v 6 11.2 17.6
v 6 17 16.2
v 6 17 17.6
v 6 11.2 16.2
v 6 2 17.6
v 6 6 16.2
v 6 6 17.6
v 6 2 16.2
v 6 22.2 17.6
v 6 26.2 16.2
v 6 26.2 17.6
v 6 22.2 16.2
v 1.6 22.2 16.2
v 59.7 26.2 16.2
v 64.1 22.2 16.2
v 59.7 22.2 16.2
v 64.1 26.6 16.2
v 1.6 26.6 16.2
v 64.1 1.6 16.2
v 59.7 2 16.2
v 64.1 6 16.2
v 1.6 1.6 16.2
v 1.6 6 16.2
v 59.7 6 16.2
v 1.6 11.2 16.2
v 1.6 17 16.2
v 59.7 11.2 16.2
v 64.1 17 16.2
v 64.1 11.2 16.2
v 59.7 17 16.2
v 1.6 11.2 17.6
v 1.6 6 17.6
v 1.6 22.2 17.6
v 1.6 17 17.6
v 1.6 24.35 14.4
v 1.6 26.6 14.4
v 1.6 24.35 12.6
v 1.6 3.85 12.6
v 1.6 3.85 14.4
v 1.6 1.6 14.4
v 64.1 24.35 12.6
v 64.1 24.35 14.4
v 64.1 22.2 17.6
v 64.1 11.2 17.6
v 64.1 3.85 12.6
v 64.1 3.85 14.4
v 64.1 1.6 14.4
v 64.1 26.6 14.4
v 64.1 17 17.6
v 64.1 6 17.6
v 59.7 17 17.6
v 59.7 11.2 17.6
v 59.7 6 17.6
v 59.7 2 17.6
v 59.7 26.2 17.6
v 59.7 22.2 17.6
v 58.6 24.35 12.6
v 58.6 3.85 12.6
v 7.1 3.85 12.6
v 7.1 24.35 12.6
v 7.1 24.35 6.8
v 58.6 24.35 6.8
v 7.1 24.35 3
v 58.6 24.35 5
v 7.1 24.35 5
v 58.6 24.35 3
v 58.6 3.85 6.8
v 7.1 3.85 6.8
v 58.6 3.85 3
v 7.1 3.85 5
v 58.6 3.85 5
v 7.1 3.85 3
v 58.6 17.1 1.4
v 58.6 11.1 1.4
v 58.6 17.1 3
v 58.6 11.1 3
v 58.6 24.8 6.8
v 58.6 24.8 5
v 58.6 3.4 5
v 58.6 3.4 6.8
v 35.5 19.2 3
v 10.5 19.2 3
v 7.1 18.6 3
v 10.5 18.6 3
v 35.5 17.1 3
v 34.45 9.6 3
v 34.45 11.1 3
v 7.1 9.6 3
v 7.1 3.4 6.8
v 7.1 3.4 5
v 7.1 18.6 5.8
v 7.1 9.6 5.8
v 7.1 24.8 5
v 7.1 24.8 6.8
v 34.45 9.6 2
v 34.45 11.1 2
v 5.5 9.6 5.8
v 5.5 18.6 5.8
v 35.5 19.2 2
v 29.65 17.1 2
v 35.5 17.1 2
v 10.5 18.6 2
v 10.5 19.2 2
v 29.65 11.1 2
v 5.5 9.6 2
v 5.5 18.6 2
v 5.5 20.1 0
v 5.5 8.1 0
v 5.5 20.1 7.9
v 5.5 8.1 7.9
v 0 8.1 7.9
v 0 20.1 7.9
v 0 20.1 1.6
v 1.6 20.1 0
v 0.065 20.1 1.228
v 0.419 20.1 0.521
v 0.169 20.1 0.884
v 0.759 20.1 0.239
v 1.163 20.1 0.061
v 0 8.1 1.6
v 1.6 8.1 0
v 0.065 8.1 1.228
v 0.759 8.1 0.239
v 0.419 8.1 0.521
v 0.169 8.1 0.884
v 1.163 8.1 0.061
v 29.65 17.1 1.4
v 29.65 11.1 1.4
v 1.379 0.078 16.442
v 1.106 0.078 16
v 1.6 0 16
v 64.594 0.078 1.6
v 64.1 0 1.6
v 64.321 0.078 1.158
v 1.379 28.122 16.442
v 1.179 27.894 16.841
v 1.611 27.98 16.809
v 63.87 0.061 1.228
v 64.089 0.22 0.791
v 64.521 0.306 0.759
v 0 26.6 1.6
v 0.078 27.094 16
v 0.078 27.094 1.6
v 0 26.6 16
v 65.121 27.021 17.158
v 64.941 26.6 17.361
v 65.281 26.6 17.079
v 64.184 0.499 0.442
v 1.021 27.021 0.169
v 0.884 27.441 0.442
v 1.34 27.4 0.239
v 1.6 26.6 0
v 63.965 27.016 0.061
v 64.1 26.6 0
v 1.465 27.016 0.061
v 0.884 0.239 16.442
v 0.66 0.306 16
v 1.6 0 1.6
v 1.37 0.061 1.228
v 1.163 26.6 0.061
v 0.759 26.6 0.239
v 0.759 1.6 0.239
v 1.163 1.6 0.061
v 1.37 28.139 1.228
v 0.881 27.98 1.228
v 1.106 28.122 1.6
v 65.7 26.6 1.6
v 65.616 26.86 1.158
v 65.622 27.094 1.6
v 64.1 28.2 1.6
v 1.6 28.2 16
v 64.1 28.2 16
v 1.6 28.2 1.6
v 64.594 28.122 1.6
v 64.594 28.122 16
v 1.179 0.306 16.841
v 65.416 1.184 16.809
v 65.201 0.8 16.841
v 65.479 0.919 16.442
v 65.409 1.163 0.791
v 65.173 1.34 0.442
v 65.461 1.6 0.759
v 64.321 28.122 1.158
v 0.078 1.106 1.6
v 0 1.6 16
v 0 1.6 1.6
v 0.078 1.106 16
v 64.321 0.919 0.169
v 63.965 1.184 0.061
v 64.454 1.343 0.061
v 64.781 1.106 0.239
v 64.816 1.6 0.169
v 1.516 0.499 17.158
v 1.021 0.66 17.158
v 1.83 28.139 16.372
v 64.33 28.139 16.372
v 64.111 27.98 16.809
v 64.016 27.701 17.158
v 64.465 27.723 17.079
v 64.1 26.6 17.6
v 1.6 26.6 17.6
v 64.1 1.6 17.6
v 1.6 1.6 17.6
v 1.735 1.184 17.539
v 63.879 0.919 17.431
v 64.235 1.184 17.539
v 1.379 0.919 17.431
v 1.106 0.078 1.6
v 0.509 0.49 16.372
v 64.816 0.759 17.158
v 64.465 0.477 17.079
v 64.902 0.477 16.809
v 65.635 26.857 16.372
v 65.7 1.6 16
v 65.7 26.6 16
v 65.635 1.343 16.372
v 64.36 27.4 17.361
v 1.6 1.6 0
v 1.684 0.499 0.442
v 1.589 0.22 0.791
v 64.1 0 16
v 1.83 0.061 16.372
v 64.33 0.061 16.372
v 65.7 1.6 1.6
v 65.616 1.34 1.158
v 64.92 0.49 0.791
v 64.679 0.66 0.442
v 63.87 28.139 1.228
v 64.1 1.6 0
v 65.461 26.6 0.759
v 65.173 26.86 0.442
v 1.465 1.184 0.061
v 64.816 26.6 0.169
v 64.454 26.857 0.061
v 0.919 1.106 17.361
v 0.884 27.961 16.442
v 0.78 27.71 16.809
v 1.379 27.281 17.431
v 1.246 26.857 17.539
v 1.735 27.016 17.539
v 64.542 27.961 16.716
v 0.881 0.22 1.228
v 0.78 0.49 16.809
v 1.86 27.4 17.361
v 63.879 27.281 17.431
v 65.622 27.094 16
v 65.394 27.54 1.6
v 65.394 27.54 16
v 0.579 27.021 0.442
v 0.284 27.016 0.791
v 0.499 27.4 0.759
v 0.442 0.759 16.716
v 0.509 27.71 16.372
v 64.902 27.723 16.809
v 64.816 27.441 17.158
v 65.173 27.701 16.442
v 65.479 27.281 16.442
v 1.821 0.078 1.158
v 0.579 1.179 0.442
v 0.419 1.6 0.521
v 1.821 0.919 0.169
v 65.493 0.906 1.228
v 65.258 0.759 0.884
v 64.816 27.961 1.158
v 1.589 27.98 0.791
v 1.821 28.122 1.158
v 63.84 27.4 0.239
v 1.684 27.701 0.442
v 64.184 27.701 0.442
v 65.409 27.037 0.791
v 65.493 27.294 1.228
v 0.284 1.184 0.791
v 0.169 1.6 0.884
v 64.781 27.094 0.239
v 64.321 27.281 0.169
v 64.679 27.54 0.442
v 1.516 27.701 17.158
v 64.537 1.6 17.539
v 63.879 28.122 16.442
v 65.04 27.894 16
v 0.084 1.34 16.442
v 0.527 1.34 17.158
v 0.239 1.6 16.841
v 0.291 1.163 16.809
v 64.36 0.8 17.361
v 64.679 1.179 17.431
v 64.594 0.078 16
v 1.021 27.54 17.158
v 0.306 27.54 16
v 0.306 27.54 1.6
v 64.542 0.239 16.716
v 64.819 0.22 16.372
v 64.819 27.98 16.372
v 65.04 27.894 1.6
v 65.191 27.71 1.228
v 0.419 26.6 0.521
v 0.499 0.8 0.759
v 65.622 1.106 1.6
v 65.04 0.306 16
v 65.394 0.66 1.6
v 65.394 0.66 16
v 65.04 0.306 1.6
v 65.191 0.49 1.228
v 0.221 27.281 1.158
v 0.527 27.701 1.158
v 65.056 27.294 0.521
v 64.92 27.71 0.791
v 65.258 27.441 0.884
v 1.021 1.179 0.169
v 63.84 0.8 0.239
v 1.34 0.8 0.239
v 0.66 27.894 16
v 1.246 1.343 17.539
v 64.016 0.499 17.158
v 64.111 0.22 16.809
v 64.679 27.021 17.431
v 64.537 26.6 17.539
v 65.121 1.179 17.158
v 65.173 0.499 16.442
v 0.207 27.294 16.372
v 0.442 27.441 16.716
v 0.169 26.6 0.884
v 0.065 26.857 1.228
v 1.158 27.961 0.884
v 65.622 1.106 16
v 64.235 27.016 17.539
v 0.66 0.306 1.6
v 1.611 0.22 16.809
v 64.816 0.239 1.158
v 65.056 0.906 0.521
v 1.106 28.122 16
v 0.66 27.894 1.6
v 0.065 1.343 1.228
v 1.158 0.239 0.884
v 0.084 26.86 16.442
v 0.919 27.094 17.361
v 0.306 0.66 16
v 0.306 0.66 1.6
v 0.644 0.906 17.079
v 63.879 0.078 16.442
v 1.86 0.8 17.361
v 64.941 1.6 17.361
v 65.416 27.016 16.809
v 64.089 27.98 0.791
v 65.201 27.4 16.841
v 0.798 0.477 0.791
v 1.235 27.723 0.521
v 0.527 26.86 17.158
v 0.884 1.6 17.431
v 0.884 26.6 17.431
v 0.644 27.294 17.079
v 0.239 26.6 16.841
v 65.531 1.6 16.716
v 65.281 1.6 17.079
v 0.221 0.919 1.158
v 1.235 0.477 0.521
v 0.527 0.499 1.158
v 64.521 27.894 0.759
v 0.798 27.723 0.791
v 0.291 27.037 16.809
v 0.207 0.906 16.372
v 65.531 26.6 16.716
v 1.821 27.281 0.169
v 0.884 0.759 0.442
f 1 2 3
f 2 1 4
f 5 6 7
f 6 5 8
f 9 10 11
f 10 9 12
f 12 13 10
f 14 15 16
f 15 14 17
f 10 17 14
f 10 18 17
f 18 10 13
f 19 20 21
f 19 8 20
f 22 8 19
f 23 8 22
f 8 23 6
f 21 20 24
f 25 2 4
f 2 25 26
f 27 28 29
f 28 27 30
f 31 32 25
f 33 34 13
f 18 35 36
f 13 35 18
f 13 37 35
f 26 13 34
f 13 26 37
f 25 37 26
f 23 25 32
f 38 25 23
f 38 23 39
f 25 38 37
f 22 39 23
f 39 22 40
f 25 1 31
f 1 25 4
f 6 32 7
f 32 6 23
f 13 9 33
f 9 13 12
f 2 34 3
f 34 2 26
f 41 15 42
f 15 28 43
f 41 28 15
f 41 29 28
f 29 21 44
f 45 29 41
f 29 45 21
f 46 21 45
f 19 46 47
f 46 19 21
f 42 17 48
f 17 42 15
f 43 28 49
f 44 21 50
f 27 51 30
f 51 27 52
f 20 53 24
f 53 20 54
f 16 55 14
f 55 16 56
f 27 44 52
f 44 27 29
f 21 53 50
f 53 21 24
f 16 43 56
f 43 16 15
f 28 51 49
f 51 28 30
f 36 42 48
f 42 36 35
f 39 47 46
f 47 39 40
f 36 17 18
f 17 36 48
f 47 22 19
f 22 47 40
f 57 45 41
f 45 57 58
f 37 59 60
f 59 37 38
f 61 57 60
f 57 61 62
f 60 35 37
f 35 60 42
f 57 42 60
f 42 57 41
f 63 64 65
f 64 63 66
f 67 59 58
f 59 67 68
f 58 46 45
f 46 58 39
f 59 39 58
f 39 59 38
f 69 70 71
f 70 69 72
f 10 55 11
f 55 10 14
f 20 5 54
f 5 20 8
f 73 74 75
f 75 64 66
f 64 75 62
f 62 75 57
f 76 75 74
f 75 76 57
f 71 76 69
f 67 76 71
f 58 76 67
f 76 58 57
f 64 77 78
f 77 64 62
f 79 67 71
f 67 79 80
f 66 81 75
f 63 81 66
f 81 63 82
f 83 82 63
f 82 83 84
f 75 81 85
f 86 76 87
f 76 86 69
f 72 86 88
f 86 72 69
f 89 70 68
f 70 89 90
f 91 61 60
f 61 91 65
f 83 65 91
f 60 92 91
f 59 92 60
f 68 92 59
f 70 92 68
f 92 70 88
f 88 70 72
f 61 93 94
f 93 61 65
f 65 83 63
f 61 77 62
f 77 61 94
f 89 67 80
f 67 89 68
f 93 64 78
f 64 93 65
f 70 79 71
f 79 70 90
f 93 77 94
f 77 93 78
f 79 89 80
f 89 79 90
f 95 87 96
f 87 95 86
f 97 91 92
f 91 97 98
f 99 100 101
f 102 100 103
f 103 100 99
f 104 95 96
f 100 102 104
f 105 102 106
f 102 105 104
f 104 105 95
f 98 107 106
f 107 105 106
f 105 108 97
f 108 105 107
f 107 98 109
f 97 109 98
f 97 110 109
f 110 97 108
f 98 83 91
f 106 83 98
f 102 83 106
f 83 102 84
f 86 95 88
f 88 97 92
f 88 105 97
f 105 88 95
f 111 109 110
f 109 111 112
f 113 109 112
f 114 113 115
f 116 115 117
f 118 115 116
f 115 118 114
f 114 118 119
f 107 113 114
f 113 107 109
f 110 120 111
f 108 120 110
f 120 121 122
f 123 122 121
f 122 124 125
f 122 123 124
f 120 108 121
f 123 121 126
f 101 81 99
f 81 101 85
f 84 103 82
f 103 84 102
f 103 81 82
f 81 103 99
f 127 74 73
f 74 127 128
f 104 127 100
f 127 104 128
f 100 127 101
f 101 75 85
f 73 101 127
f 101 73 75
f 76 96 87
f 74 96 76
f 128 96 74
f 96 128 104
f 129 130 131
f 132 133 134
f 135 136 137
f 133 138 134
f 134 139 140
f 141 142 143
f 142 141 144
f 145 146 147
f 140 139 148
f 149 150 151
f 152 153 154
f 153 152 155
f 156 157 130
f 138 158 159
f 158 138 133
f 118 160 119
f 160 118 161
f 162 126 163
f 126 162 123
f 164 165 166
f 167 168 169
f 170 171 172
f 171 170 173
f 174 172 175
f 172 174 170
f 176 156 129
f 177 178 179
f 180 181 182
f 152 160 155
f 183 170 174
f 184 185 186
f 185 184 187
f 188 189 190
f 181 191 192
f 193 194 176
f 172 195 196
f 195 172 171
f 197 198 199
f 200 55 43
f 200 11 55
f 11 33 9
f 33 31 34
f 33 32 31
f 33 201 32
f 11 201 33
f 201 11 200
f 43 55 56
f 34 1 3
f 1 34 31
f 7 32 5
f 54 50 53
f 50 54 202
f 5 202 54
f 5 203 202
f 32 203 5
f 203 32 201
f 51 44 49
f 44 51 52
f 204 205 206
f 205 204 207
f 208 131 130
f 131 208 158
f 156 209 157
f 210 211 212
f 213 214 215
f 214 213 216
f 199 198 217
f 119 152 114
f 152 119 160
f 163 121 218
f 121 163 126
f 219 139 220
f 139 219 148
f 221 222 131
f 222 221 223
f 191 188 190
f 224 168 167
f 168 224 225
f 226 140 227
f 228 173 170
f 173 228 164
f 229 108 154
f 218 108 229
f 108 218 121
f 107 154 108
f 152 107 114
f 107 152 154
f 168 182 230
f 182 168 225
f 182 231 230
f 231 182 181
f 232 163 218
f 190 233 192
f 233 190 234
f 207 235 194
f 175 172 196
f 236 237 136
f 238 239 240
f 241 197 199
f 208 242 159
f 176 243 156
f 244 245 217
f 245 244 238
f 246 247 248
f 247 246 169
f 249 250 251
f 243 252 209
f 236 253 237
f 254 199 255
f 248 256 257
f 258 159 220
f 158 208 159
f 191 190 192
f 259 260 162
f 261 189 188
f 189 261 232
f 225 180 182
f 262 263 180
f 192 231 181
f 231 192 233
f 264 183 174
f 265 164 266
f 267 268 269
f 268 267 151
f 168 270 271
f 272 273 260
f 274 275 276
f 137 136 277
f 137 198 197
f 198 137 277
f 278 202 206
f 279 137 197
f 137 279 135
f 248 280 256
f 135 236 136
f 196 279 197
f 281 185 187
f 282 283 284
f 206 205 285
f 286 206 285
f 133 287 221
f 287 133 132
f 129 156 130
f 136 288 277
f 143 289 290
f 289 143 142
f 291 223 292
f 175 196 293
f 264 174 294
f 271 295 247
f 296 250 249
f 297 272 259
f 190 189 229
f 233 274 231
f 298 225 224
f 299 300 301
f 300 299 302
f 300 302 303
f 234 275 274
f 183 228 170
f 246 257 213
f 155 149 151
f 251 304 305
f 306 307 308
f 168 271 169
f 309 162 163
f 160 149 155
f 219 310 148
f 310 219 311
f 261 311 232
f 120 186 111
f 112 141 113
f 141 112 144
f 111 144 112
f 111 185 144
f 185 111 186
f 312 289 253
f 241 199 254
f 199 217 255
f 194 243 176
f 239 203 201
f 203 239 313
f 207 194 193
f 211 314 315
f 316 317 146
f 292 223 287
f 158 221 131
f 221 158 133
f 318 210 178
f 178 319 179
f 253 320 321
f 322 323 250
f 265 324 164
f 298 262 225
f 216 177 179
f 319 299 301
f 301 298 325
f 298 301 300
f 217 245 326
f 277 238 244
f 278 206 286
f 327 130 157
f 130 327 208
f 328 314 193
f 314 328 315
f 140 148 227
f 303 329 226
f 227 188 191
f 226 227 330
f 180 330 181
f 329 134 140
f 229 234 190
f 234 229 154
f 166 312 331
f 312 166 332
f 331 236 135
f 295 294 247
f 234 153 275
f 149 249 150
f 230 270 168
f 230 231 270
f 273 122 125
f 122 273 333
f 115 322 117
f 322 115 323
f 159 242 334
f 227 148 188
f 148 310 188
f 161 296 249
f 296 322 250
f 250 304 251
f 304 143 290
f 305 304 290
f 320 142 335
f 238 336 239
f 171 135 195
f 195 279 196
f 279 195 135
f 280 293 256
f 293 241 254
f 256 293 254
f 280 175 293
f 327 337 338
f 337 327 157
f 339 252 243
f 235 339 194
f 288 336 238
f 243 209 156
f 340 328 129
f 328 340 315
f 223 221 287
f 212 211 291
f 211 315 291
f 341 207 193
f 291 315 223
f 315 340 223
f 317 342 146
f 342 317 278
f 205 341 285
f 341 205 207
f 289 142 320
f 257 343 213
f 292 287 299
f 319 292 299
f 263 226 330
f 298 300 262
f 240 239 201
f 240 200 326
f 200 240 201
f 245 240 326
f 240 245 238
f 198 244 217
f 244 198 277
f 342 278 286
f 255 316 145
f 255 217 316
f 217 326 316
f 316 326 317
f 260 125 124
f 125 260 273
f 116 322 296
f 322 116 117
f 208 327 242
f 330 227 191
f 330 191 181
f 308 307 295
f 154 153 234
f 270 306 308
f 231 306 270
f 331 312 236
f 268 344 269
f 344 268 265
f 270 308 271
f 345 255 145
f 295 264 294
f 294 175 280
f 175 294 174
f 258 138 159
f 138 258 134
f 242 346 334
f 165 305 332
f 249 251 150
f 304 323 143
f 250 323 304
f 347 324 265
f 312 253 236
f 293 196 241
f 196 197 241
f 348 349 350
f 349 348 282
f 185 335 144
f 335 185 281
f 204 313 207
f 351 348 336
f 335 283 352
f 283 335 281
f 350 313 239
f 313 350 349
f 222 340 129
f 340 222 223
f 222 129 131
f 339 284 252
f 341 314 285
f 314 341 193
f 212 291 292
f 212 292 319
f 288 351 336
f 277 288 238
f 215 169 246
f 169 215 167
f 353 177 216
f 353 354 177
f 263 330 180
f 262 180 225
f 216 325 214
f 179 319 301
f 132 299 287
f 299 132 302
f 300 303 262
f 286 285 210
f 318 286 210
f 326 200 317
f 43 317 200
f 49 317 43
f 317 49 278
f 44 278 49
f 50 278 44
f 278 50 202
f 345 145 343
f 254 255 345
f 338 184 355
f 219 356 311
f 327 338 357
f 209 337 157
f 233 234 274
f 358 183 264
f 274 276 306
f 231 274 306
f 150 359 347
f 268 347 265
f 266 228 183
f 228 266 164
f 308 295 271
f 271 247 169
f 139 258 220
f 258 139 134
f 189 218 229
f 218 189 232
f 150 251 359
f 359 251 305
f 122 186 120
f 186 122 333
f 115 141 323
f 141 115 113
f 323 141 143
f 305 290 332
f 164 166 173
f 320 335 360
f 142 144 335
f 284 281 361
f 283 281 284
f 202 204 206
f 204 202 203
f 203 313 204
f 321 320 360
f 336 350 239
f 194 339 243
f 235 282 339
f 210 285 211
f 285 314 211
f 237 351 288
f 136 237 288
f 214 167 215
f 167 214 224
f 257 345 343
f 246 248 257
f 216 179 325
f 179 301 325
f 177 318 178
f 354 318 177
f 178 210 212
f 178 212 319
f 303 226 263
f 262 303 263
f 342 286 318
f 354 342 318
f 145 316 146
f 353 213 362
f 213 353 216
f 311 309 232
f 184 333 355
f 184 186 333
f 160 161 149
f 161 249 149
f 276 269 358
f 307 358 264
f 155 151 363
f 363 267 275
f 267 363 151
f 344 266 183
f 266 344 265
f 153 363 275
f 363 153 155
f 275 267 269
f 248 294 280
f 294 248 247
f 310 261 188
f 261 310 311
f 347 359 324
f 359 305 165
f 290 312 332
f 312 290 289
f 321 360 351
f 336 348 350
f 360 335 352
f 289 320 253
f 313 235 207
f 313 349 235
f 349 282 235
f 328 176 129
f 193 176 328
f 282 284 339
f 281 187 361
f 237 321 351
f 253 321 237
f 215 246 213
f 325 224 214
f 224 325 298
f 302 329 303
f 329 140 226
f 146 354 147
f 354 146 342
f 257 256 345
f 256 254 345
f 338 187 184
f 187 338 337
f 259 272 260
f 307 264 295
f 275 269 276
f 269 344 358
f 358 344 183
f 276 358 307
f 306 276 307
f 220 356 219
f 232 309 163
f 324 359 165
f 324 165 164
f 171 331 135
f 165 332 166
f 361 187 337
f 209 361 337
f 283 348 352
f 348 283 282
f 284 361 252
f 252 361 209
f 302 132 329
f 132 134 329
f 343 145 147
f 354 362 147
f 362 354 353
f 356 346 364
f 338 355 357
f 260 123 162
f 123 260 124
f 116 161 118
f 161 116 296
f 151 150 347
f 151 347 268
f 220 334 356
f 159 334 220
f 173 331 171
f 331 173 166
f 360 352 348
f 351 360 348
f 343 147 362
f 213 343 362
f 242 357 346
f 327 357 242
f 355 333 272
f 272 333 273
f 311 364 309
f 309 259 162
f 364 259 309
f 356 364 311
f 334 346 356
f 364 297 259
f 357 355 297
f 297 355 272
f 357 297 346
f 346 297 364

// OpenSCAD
// file: geodesic_sphere.scad
// same syntax and semantics as built-in sphere, so should be a drop-in replacement
// it's a bit slow for large numbers of facets
module geodesic_sphere(r=-1, d=-1) {
  // if neither parameter specified, radius is taken to be 1
  rad = r > 0 ? r : d > 0 ? d/2 : 1;  
  
  pentside_pr = 2*sin(36);  // side length compared to radius of a pentagon
  pentheight_pr = sqrt(pentside_pr*pentside_pr - 1);
  // from center of sphere, icosahedron edge subtends this angle
  edge_subtend = 2*atan(pentheight_pr);

  // vertical rotation by 72 degrees
  c72 = cos(72);
  s72 = sin(72);
  function zrot(pt) = [ c72*pt[0]-s72*pt[1], s72*pt[0]+c72*pt[1], pt[2] ];

  // rotation from north to vertex along positive x
  ces = cos(edge_subtend);
  ses = sin(edge_subtend);
  function yrot(pt) = [ ces*pt[0] + ses*pt[2], pt[1], ces*pt[2]-ses*pt[0] ];
  
  // 12 icosahedron vertices generated from north, south, yrot and zrot
  ic1 = [ 0, 0, 1 ];  // north
  ic2 = yrot(ic1);    // north and +x
  ic3 = zrot(ic2);    // north and +x and +y
  ic4 = zrot(ic3);    // north and -x and +y
  ic5 = zrot(ic4);    // north and -x and -y
  ic6 = zrot(ic5);    // north and +x and -y
  ic12 = [ 0, 0, -1]; // south
  ic10 = yrot(ic12);  // south and -x
  ic11 = zrot(ic10);  // south and -x and -y
  ic7 = zrot(ic11);   // south and +x and -y
  ic8 = zrot(ic7);    // south and +x and +y
  ic9 = zrot(ic8);    // south and -x and +y
  
  // start with icosahedron, icos[0] is vertices and icos[1] is faces
  icos = [ [ic1, ic2, ic3, ic4, ic5, ic6, ic7, ic8, ic9, ic10, ic11, ic12 ],
    [ [0, 2, 1], [0, 3, 2], [0, 4, 3], [0, 5, 4], [0, 1, 5],
      [1, 2, 7], [2, 3, 8], [3, 4, 9], [4, 5, 10], [5, 1, 6], 
      [7, 6, 1], [8, 7, 2], [9, 8, 3], [10, 9, 4], [6, 10, 5],
      [6, 7, 11], [7, 8, 11], [8, 9, 11], [9, 10, 11], [10, 6, 11]]];
  
  // now for polyhedron subdivision functions

  // given two 3D points on the unit sphere, find the half-way point on the great circle
  // (euclidean midpoint renormalized to be 1 unit away from origin)
  function midpt(p1, p2) = 
    let (midx = (p1[0] + p2[0])/2, midy = (p1[1] + p2[1])/2, midz = (p1[2] + p2[2])/2)
    let (midlen = sqrt(midx*midx + midy*midy + midz*midz))
    [ midx/midlen, midy/midlen, midz/midlen ];
  
  // given a "struct" where pf[0] is vertices and pf[1] is faces, subdivide all faces into 
  // 4 faces by dividing each edge in half along a great circle (midpt function)
  // and returns a struct of the same format, i.e. pf[0] is a (larger) list of vertices and
  // pf[1] is a larger list of faces.
  function subdivpf(pf) =
    let (p=pf[0], faces=pf[1])
    [ // for each face, barf out six points
      [ for (f=faces) 
          let (p0 = p[f[0]], p1 = p[f[1]], p2=p[f[2]])
            // "identity" for-loop saves having to flatten
            for (outp=[ p0, p1, p2, midpt(p0, p1), midpt(p1, p2), midpt(p0, p2) ]) outp
      ],
      // now, again for each face, spit out four faces that connect those six points
      [ for (i=[0:len(faces)-1])
        let (base = 6*i)  // points generated in multiples of 6
          for (outf =
          [[ base, base+3, base+5], 
          [base+3, base+1, base+4],
          [base+5, base+4, base+2],
          [base+3, base+4, base+5]]) outf  // "identity" for-loop saves having to flatten
      ]
    ];

  // recursive wrapper for subdivpf that subdivides "levels" times
  function multi_subdiv_pf(pf, levels) =
    levels == 0 ? pf :
    multi_subdiv_pf(subdivpf(pf), levels-1);

  // subdivision level based on $fa:
  // level 0 has edge angle of edge_subtend so subdivision factor should be edge_subtend/$fa
  // must round up to next power of 2.  
  // Take log base 2 of angle ratio and round up to next integer
  ang_levels = ceil(log(edge_subtend/$fa)/log(2));
    
  // subdivision level based on $fs:
  // icosahedron edge length is rad*2*tan(edge_subtend/2)
  // actually a chord and not circumference but let's say it's close enough
  // subdivision factor should be rad*2*tan(edge_subtend/2)/$fs
  side_levels = ceil(log(rad*2*tan(edge_subtend/2)/$fs)/log(2));
  
  // subdivision level based on $fn: (fragments around circumference, not total facets)
  // icosahedron circumference around equator is about 5 (level 1 is exactly 10)
  // ratio of requested to equatorial segments is $fn/5
  // level of subdivison is log base 2 of $fn/5
  // round up to the next whole level so we get at least $fn
  facet_levels = ceil(log($fn/5)/log(2));
  
  // $fn takes precedence, otherwise facet_levels is NaN (-inf) but it's ok 
  // because it falls back to $fa or $fs, whichever translates to fewer levels
  levels = $fn ? facet_levels : min(ang_levels, side_levels);

  // subdivide icosahedron by these levels
  subdiv_icos = multi_subdiv_pf(icos, levels);
  
  scale(rad)
  polyhedron(points=subdiv_icos[0], faces=subdiv_icos[1]);
}
// main file
use <geodesic_sphere.scad>

unicorn_width = 25;
unicorn_length = 62.5;
unicorn_height = 1.8;
unicorn_button_height = 1.6;
unicorn_edge_to_button = 4.4;
unicorn_edge_to_led = 0.4;
unicorn_led_height = 1.2;
button_length = 4.4;
button_width = 5.2;
pico_width = 21.4;
pico_pin_height = 2.4 ;
header_width = 20.5;
header_length = 51.5;
wall_thickness = 1.6;
package_height = 14.4;
usb_header_length = header_length/2+wall_thickness*2;
usb_header_width = 9;
usb_header_height = 3.8;
usb_header_pico_offset = 1.6;
usb_plug_width = 12;
usb_plug_height = 8.4;
bootsel_width = 3.5;
bootsel_length = 25;
bootsel_height = usb_header_height;
bootsel_pico_width_offset = 12.3;
debug_header_length = usb_header_length;
debug_header_width = 6;
debug_header_height = 3.4;

$fn=12;

module rounded_cube(length, width, height, radius) {
    hull() {
        for (l=[0+radius,length-radius], w=[0+radius,width-radius], h=[0+radius,height-radius]) {
            translate([l, w, h]) geodesic_sphere(radius);
        }
    }
}

module package() {
    translate([wall_thickness, wall_thickness, wall_thickness+usb_header_height-pico_pin_height]) union() {
        //unicorn pcb
        translate([0, 0, package_height-unicorn_led_height-unicorn_height]) cube([unicorn_length, unicorn_width, unicorn_height]);
        //cutout for unicorn components
        translate([0, (unicorn_width-header_width)/2, package_height-unicorn_led_height-unicorn_height*2]) cube([unicorn_length, header_width, unicorn_height]);
        //led window
        translate([unicorn_edge_to_button, unicorn_edge_to_led, package_height-unicorn_led_height]) cube([unicorn_length-unicorn_edge_to_button*2, unicorn_width-unicorn_edge_to_led*2, package_height]);
        //buttons
        for (x=[0,unicorn_length-unicorn_edge_to_button], y=[unicorn_edge_to_button,unicorn_width-unicorn_edge_to_button-button_width]) {
            translate([x, y, package_height-unicorn_led_height]) cube([button_length, button_width, package_height]);
        }
        //headers
        translate([(unicorn_length-header_length)/2, (unicorn_width-header_width)/2, 0]) cube([header_length, header_width, package_height]);
        //pico pcb
        translate([(unicorn_length-header_length)/2, (unicorn_width-pico_width)/2, pico_pin_height-0.4]) cube([header_length, pico_width, unicorn_height]);
        //usb header
        translate([(unicorn_length-header_length)/2-usb_header_pico_offset,(unicorn_width-usb_header_width)/2,pico_pin_height-usb_header_height+0.4]) cube([usb_header_length, usb_header_width, usb_header_height]);
        //usb plug
        translate([-wall_thickness*2, (unicorn_width-usb_plug_width)/2, (usb_plug_height-usb_header_height)/2-pico_pin_height-usb_header_height+0.4]) cube([(unicorn_length-header_length)/2-usb_header_pico_offset+wall_thickness*2, usb_plug_width, usb_plug_height]);
        //bootsel
        translate([(unicorn_length-header_length)/2-usb_header_pico_offset+5, (unicorn_width-pico_width)/2+bootsel_pico_width_offset, pico_pin_height-bootsel_height+0.4]) cube([bootsel_length, bootsel_width, bootsel_height]);
        //debug header for pico H
        translate([unicorn_length - (unicorn_length-header_length)/2 - debug_header_length, (unicorn_width-debug_header_width)/2, pico_pin_height-0.6-debug_header_height]) cube([debug_header_length, debug_header_width, debug_header_height]);
    }
}

difference() {
    rounded_cube(unicorn_length+2*wall_thickness, unicorn_width+2*wall_thickness, package_height+wall_thickness*2, wall_thickness);
    package();
}
